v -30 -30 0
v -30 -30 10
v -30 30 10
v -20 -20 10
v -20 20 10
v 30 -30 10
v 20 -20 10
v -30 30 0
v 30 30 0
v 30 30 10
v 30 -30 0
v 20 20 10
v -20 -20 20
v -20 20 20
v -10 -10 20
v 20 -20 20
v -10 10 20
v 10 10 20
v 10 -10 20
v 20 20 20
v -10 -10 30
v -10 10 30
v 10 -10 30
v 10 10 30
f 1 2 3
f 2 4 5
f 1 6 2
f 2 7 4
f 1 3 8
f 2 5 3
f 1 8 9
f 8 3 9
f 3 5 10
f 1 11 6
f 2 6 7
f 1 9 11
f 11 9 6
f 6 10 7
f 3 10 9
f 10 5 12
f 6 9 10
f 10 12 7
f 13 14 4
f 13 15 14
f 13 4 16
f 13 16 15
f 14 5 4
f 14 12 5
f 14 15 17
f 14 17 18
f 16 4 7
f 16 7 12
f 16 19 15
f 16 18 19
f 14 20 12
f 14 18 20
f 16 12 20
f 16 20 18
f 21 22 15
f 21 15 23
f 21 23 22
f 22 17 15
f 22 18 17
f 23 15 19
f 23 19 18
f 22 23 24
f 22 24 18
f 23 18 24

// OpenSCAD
union() {
    translate([-30, -30, 0]) cube([60, 60, 10]);
    translate([-20, -20, 10]) cube([40, 40, 10]);
    translate([-10, -10, 20]) cube([20, 20, 10]);
}
